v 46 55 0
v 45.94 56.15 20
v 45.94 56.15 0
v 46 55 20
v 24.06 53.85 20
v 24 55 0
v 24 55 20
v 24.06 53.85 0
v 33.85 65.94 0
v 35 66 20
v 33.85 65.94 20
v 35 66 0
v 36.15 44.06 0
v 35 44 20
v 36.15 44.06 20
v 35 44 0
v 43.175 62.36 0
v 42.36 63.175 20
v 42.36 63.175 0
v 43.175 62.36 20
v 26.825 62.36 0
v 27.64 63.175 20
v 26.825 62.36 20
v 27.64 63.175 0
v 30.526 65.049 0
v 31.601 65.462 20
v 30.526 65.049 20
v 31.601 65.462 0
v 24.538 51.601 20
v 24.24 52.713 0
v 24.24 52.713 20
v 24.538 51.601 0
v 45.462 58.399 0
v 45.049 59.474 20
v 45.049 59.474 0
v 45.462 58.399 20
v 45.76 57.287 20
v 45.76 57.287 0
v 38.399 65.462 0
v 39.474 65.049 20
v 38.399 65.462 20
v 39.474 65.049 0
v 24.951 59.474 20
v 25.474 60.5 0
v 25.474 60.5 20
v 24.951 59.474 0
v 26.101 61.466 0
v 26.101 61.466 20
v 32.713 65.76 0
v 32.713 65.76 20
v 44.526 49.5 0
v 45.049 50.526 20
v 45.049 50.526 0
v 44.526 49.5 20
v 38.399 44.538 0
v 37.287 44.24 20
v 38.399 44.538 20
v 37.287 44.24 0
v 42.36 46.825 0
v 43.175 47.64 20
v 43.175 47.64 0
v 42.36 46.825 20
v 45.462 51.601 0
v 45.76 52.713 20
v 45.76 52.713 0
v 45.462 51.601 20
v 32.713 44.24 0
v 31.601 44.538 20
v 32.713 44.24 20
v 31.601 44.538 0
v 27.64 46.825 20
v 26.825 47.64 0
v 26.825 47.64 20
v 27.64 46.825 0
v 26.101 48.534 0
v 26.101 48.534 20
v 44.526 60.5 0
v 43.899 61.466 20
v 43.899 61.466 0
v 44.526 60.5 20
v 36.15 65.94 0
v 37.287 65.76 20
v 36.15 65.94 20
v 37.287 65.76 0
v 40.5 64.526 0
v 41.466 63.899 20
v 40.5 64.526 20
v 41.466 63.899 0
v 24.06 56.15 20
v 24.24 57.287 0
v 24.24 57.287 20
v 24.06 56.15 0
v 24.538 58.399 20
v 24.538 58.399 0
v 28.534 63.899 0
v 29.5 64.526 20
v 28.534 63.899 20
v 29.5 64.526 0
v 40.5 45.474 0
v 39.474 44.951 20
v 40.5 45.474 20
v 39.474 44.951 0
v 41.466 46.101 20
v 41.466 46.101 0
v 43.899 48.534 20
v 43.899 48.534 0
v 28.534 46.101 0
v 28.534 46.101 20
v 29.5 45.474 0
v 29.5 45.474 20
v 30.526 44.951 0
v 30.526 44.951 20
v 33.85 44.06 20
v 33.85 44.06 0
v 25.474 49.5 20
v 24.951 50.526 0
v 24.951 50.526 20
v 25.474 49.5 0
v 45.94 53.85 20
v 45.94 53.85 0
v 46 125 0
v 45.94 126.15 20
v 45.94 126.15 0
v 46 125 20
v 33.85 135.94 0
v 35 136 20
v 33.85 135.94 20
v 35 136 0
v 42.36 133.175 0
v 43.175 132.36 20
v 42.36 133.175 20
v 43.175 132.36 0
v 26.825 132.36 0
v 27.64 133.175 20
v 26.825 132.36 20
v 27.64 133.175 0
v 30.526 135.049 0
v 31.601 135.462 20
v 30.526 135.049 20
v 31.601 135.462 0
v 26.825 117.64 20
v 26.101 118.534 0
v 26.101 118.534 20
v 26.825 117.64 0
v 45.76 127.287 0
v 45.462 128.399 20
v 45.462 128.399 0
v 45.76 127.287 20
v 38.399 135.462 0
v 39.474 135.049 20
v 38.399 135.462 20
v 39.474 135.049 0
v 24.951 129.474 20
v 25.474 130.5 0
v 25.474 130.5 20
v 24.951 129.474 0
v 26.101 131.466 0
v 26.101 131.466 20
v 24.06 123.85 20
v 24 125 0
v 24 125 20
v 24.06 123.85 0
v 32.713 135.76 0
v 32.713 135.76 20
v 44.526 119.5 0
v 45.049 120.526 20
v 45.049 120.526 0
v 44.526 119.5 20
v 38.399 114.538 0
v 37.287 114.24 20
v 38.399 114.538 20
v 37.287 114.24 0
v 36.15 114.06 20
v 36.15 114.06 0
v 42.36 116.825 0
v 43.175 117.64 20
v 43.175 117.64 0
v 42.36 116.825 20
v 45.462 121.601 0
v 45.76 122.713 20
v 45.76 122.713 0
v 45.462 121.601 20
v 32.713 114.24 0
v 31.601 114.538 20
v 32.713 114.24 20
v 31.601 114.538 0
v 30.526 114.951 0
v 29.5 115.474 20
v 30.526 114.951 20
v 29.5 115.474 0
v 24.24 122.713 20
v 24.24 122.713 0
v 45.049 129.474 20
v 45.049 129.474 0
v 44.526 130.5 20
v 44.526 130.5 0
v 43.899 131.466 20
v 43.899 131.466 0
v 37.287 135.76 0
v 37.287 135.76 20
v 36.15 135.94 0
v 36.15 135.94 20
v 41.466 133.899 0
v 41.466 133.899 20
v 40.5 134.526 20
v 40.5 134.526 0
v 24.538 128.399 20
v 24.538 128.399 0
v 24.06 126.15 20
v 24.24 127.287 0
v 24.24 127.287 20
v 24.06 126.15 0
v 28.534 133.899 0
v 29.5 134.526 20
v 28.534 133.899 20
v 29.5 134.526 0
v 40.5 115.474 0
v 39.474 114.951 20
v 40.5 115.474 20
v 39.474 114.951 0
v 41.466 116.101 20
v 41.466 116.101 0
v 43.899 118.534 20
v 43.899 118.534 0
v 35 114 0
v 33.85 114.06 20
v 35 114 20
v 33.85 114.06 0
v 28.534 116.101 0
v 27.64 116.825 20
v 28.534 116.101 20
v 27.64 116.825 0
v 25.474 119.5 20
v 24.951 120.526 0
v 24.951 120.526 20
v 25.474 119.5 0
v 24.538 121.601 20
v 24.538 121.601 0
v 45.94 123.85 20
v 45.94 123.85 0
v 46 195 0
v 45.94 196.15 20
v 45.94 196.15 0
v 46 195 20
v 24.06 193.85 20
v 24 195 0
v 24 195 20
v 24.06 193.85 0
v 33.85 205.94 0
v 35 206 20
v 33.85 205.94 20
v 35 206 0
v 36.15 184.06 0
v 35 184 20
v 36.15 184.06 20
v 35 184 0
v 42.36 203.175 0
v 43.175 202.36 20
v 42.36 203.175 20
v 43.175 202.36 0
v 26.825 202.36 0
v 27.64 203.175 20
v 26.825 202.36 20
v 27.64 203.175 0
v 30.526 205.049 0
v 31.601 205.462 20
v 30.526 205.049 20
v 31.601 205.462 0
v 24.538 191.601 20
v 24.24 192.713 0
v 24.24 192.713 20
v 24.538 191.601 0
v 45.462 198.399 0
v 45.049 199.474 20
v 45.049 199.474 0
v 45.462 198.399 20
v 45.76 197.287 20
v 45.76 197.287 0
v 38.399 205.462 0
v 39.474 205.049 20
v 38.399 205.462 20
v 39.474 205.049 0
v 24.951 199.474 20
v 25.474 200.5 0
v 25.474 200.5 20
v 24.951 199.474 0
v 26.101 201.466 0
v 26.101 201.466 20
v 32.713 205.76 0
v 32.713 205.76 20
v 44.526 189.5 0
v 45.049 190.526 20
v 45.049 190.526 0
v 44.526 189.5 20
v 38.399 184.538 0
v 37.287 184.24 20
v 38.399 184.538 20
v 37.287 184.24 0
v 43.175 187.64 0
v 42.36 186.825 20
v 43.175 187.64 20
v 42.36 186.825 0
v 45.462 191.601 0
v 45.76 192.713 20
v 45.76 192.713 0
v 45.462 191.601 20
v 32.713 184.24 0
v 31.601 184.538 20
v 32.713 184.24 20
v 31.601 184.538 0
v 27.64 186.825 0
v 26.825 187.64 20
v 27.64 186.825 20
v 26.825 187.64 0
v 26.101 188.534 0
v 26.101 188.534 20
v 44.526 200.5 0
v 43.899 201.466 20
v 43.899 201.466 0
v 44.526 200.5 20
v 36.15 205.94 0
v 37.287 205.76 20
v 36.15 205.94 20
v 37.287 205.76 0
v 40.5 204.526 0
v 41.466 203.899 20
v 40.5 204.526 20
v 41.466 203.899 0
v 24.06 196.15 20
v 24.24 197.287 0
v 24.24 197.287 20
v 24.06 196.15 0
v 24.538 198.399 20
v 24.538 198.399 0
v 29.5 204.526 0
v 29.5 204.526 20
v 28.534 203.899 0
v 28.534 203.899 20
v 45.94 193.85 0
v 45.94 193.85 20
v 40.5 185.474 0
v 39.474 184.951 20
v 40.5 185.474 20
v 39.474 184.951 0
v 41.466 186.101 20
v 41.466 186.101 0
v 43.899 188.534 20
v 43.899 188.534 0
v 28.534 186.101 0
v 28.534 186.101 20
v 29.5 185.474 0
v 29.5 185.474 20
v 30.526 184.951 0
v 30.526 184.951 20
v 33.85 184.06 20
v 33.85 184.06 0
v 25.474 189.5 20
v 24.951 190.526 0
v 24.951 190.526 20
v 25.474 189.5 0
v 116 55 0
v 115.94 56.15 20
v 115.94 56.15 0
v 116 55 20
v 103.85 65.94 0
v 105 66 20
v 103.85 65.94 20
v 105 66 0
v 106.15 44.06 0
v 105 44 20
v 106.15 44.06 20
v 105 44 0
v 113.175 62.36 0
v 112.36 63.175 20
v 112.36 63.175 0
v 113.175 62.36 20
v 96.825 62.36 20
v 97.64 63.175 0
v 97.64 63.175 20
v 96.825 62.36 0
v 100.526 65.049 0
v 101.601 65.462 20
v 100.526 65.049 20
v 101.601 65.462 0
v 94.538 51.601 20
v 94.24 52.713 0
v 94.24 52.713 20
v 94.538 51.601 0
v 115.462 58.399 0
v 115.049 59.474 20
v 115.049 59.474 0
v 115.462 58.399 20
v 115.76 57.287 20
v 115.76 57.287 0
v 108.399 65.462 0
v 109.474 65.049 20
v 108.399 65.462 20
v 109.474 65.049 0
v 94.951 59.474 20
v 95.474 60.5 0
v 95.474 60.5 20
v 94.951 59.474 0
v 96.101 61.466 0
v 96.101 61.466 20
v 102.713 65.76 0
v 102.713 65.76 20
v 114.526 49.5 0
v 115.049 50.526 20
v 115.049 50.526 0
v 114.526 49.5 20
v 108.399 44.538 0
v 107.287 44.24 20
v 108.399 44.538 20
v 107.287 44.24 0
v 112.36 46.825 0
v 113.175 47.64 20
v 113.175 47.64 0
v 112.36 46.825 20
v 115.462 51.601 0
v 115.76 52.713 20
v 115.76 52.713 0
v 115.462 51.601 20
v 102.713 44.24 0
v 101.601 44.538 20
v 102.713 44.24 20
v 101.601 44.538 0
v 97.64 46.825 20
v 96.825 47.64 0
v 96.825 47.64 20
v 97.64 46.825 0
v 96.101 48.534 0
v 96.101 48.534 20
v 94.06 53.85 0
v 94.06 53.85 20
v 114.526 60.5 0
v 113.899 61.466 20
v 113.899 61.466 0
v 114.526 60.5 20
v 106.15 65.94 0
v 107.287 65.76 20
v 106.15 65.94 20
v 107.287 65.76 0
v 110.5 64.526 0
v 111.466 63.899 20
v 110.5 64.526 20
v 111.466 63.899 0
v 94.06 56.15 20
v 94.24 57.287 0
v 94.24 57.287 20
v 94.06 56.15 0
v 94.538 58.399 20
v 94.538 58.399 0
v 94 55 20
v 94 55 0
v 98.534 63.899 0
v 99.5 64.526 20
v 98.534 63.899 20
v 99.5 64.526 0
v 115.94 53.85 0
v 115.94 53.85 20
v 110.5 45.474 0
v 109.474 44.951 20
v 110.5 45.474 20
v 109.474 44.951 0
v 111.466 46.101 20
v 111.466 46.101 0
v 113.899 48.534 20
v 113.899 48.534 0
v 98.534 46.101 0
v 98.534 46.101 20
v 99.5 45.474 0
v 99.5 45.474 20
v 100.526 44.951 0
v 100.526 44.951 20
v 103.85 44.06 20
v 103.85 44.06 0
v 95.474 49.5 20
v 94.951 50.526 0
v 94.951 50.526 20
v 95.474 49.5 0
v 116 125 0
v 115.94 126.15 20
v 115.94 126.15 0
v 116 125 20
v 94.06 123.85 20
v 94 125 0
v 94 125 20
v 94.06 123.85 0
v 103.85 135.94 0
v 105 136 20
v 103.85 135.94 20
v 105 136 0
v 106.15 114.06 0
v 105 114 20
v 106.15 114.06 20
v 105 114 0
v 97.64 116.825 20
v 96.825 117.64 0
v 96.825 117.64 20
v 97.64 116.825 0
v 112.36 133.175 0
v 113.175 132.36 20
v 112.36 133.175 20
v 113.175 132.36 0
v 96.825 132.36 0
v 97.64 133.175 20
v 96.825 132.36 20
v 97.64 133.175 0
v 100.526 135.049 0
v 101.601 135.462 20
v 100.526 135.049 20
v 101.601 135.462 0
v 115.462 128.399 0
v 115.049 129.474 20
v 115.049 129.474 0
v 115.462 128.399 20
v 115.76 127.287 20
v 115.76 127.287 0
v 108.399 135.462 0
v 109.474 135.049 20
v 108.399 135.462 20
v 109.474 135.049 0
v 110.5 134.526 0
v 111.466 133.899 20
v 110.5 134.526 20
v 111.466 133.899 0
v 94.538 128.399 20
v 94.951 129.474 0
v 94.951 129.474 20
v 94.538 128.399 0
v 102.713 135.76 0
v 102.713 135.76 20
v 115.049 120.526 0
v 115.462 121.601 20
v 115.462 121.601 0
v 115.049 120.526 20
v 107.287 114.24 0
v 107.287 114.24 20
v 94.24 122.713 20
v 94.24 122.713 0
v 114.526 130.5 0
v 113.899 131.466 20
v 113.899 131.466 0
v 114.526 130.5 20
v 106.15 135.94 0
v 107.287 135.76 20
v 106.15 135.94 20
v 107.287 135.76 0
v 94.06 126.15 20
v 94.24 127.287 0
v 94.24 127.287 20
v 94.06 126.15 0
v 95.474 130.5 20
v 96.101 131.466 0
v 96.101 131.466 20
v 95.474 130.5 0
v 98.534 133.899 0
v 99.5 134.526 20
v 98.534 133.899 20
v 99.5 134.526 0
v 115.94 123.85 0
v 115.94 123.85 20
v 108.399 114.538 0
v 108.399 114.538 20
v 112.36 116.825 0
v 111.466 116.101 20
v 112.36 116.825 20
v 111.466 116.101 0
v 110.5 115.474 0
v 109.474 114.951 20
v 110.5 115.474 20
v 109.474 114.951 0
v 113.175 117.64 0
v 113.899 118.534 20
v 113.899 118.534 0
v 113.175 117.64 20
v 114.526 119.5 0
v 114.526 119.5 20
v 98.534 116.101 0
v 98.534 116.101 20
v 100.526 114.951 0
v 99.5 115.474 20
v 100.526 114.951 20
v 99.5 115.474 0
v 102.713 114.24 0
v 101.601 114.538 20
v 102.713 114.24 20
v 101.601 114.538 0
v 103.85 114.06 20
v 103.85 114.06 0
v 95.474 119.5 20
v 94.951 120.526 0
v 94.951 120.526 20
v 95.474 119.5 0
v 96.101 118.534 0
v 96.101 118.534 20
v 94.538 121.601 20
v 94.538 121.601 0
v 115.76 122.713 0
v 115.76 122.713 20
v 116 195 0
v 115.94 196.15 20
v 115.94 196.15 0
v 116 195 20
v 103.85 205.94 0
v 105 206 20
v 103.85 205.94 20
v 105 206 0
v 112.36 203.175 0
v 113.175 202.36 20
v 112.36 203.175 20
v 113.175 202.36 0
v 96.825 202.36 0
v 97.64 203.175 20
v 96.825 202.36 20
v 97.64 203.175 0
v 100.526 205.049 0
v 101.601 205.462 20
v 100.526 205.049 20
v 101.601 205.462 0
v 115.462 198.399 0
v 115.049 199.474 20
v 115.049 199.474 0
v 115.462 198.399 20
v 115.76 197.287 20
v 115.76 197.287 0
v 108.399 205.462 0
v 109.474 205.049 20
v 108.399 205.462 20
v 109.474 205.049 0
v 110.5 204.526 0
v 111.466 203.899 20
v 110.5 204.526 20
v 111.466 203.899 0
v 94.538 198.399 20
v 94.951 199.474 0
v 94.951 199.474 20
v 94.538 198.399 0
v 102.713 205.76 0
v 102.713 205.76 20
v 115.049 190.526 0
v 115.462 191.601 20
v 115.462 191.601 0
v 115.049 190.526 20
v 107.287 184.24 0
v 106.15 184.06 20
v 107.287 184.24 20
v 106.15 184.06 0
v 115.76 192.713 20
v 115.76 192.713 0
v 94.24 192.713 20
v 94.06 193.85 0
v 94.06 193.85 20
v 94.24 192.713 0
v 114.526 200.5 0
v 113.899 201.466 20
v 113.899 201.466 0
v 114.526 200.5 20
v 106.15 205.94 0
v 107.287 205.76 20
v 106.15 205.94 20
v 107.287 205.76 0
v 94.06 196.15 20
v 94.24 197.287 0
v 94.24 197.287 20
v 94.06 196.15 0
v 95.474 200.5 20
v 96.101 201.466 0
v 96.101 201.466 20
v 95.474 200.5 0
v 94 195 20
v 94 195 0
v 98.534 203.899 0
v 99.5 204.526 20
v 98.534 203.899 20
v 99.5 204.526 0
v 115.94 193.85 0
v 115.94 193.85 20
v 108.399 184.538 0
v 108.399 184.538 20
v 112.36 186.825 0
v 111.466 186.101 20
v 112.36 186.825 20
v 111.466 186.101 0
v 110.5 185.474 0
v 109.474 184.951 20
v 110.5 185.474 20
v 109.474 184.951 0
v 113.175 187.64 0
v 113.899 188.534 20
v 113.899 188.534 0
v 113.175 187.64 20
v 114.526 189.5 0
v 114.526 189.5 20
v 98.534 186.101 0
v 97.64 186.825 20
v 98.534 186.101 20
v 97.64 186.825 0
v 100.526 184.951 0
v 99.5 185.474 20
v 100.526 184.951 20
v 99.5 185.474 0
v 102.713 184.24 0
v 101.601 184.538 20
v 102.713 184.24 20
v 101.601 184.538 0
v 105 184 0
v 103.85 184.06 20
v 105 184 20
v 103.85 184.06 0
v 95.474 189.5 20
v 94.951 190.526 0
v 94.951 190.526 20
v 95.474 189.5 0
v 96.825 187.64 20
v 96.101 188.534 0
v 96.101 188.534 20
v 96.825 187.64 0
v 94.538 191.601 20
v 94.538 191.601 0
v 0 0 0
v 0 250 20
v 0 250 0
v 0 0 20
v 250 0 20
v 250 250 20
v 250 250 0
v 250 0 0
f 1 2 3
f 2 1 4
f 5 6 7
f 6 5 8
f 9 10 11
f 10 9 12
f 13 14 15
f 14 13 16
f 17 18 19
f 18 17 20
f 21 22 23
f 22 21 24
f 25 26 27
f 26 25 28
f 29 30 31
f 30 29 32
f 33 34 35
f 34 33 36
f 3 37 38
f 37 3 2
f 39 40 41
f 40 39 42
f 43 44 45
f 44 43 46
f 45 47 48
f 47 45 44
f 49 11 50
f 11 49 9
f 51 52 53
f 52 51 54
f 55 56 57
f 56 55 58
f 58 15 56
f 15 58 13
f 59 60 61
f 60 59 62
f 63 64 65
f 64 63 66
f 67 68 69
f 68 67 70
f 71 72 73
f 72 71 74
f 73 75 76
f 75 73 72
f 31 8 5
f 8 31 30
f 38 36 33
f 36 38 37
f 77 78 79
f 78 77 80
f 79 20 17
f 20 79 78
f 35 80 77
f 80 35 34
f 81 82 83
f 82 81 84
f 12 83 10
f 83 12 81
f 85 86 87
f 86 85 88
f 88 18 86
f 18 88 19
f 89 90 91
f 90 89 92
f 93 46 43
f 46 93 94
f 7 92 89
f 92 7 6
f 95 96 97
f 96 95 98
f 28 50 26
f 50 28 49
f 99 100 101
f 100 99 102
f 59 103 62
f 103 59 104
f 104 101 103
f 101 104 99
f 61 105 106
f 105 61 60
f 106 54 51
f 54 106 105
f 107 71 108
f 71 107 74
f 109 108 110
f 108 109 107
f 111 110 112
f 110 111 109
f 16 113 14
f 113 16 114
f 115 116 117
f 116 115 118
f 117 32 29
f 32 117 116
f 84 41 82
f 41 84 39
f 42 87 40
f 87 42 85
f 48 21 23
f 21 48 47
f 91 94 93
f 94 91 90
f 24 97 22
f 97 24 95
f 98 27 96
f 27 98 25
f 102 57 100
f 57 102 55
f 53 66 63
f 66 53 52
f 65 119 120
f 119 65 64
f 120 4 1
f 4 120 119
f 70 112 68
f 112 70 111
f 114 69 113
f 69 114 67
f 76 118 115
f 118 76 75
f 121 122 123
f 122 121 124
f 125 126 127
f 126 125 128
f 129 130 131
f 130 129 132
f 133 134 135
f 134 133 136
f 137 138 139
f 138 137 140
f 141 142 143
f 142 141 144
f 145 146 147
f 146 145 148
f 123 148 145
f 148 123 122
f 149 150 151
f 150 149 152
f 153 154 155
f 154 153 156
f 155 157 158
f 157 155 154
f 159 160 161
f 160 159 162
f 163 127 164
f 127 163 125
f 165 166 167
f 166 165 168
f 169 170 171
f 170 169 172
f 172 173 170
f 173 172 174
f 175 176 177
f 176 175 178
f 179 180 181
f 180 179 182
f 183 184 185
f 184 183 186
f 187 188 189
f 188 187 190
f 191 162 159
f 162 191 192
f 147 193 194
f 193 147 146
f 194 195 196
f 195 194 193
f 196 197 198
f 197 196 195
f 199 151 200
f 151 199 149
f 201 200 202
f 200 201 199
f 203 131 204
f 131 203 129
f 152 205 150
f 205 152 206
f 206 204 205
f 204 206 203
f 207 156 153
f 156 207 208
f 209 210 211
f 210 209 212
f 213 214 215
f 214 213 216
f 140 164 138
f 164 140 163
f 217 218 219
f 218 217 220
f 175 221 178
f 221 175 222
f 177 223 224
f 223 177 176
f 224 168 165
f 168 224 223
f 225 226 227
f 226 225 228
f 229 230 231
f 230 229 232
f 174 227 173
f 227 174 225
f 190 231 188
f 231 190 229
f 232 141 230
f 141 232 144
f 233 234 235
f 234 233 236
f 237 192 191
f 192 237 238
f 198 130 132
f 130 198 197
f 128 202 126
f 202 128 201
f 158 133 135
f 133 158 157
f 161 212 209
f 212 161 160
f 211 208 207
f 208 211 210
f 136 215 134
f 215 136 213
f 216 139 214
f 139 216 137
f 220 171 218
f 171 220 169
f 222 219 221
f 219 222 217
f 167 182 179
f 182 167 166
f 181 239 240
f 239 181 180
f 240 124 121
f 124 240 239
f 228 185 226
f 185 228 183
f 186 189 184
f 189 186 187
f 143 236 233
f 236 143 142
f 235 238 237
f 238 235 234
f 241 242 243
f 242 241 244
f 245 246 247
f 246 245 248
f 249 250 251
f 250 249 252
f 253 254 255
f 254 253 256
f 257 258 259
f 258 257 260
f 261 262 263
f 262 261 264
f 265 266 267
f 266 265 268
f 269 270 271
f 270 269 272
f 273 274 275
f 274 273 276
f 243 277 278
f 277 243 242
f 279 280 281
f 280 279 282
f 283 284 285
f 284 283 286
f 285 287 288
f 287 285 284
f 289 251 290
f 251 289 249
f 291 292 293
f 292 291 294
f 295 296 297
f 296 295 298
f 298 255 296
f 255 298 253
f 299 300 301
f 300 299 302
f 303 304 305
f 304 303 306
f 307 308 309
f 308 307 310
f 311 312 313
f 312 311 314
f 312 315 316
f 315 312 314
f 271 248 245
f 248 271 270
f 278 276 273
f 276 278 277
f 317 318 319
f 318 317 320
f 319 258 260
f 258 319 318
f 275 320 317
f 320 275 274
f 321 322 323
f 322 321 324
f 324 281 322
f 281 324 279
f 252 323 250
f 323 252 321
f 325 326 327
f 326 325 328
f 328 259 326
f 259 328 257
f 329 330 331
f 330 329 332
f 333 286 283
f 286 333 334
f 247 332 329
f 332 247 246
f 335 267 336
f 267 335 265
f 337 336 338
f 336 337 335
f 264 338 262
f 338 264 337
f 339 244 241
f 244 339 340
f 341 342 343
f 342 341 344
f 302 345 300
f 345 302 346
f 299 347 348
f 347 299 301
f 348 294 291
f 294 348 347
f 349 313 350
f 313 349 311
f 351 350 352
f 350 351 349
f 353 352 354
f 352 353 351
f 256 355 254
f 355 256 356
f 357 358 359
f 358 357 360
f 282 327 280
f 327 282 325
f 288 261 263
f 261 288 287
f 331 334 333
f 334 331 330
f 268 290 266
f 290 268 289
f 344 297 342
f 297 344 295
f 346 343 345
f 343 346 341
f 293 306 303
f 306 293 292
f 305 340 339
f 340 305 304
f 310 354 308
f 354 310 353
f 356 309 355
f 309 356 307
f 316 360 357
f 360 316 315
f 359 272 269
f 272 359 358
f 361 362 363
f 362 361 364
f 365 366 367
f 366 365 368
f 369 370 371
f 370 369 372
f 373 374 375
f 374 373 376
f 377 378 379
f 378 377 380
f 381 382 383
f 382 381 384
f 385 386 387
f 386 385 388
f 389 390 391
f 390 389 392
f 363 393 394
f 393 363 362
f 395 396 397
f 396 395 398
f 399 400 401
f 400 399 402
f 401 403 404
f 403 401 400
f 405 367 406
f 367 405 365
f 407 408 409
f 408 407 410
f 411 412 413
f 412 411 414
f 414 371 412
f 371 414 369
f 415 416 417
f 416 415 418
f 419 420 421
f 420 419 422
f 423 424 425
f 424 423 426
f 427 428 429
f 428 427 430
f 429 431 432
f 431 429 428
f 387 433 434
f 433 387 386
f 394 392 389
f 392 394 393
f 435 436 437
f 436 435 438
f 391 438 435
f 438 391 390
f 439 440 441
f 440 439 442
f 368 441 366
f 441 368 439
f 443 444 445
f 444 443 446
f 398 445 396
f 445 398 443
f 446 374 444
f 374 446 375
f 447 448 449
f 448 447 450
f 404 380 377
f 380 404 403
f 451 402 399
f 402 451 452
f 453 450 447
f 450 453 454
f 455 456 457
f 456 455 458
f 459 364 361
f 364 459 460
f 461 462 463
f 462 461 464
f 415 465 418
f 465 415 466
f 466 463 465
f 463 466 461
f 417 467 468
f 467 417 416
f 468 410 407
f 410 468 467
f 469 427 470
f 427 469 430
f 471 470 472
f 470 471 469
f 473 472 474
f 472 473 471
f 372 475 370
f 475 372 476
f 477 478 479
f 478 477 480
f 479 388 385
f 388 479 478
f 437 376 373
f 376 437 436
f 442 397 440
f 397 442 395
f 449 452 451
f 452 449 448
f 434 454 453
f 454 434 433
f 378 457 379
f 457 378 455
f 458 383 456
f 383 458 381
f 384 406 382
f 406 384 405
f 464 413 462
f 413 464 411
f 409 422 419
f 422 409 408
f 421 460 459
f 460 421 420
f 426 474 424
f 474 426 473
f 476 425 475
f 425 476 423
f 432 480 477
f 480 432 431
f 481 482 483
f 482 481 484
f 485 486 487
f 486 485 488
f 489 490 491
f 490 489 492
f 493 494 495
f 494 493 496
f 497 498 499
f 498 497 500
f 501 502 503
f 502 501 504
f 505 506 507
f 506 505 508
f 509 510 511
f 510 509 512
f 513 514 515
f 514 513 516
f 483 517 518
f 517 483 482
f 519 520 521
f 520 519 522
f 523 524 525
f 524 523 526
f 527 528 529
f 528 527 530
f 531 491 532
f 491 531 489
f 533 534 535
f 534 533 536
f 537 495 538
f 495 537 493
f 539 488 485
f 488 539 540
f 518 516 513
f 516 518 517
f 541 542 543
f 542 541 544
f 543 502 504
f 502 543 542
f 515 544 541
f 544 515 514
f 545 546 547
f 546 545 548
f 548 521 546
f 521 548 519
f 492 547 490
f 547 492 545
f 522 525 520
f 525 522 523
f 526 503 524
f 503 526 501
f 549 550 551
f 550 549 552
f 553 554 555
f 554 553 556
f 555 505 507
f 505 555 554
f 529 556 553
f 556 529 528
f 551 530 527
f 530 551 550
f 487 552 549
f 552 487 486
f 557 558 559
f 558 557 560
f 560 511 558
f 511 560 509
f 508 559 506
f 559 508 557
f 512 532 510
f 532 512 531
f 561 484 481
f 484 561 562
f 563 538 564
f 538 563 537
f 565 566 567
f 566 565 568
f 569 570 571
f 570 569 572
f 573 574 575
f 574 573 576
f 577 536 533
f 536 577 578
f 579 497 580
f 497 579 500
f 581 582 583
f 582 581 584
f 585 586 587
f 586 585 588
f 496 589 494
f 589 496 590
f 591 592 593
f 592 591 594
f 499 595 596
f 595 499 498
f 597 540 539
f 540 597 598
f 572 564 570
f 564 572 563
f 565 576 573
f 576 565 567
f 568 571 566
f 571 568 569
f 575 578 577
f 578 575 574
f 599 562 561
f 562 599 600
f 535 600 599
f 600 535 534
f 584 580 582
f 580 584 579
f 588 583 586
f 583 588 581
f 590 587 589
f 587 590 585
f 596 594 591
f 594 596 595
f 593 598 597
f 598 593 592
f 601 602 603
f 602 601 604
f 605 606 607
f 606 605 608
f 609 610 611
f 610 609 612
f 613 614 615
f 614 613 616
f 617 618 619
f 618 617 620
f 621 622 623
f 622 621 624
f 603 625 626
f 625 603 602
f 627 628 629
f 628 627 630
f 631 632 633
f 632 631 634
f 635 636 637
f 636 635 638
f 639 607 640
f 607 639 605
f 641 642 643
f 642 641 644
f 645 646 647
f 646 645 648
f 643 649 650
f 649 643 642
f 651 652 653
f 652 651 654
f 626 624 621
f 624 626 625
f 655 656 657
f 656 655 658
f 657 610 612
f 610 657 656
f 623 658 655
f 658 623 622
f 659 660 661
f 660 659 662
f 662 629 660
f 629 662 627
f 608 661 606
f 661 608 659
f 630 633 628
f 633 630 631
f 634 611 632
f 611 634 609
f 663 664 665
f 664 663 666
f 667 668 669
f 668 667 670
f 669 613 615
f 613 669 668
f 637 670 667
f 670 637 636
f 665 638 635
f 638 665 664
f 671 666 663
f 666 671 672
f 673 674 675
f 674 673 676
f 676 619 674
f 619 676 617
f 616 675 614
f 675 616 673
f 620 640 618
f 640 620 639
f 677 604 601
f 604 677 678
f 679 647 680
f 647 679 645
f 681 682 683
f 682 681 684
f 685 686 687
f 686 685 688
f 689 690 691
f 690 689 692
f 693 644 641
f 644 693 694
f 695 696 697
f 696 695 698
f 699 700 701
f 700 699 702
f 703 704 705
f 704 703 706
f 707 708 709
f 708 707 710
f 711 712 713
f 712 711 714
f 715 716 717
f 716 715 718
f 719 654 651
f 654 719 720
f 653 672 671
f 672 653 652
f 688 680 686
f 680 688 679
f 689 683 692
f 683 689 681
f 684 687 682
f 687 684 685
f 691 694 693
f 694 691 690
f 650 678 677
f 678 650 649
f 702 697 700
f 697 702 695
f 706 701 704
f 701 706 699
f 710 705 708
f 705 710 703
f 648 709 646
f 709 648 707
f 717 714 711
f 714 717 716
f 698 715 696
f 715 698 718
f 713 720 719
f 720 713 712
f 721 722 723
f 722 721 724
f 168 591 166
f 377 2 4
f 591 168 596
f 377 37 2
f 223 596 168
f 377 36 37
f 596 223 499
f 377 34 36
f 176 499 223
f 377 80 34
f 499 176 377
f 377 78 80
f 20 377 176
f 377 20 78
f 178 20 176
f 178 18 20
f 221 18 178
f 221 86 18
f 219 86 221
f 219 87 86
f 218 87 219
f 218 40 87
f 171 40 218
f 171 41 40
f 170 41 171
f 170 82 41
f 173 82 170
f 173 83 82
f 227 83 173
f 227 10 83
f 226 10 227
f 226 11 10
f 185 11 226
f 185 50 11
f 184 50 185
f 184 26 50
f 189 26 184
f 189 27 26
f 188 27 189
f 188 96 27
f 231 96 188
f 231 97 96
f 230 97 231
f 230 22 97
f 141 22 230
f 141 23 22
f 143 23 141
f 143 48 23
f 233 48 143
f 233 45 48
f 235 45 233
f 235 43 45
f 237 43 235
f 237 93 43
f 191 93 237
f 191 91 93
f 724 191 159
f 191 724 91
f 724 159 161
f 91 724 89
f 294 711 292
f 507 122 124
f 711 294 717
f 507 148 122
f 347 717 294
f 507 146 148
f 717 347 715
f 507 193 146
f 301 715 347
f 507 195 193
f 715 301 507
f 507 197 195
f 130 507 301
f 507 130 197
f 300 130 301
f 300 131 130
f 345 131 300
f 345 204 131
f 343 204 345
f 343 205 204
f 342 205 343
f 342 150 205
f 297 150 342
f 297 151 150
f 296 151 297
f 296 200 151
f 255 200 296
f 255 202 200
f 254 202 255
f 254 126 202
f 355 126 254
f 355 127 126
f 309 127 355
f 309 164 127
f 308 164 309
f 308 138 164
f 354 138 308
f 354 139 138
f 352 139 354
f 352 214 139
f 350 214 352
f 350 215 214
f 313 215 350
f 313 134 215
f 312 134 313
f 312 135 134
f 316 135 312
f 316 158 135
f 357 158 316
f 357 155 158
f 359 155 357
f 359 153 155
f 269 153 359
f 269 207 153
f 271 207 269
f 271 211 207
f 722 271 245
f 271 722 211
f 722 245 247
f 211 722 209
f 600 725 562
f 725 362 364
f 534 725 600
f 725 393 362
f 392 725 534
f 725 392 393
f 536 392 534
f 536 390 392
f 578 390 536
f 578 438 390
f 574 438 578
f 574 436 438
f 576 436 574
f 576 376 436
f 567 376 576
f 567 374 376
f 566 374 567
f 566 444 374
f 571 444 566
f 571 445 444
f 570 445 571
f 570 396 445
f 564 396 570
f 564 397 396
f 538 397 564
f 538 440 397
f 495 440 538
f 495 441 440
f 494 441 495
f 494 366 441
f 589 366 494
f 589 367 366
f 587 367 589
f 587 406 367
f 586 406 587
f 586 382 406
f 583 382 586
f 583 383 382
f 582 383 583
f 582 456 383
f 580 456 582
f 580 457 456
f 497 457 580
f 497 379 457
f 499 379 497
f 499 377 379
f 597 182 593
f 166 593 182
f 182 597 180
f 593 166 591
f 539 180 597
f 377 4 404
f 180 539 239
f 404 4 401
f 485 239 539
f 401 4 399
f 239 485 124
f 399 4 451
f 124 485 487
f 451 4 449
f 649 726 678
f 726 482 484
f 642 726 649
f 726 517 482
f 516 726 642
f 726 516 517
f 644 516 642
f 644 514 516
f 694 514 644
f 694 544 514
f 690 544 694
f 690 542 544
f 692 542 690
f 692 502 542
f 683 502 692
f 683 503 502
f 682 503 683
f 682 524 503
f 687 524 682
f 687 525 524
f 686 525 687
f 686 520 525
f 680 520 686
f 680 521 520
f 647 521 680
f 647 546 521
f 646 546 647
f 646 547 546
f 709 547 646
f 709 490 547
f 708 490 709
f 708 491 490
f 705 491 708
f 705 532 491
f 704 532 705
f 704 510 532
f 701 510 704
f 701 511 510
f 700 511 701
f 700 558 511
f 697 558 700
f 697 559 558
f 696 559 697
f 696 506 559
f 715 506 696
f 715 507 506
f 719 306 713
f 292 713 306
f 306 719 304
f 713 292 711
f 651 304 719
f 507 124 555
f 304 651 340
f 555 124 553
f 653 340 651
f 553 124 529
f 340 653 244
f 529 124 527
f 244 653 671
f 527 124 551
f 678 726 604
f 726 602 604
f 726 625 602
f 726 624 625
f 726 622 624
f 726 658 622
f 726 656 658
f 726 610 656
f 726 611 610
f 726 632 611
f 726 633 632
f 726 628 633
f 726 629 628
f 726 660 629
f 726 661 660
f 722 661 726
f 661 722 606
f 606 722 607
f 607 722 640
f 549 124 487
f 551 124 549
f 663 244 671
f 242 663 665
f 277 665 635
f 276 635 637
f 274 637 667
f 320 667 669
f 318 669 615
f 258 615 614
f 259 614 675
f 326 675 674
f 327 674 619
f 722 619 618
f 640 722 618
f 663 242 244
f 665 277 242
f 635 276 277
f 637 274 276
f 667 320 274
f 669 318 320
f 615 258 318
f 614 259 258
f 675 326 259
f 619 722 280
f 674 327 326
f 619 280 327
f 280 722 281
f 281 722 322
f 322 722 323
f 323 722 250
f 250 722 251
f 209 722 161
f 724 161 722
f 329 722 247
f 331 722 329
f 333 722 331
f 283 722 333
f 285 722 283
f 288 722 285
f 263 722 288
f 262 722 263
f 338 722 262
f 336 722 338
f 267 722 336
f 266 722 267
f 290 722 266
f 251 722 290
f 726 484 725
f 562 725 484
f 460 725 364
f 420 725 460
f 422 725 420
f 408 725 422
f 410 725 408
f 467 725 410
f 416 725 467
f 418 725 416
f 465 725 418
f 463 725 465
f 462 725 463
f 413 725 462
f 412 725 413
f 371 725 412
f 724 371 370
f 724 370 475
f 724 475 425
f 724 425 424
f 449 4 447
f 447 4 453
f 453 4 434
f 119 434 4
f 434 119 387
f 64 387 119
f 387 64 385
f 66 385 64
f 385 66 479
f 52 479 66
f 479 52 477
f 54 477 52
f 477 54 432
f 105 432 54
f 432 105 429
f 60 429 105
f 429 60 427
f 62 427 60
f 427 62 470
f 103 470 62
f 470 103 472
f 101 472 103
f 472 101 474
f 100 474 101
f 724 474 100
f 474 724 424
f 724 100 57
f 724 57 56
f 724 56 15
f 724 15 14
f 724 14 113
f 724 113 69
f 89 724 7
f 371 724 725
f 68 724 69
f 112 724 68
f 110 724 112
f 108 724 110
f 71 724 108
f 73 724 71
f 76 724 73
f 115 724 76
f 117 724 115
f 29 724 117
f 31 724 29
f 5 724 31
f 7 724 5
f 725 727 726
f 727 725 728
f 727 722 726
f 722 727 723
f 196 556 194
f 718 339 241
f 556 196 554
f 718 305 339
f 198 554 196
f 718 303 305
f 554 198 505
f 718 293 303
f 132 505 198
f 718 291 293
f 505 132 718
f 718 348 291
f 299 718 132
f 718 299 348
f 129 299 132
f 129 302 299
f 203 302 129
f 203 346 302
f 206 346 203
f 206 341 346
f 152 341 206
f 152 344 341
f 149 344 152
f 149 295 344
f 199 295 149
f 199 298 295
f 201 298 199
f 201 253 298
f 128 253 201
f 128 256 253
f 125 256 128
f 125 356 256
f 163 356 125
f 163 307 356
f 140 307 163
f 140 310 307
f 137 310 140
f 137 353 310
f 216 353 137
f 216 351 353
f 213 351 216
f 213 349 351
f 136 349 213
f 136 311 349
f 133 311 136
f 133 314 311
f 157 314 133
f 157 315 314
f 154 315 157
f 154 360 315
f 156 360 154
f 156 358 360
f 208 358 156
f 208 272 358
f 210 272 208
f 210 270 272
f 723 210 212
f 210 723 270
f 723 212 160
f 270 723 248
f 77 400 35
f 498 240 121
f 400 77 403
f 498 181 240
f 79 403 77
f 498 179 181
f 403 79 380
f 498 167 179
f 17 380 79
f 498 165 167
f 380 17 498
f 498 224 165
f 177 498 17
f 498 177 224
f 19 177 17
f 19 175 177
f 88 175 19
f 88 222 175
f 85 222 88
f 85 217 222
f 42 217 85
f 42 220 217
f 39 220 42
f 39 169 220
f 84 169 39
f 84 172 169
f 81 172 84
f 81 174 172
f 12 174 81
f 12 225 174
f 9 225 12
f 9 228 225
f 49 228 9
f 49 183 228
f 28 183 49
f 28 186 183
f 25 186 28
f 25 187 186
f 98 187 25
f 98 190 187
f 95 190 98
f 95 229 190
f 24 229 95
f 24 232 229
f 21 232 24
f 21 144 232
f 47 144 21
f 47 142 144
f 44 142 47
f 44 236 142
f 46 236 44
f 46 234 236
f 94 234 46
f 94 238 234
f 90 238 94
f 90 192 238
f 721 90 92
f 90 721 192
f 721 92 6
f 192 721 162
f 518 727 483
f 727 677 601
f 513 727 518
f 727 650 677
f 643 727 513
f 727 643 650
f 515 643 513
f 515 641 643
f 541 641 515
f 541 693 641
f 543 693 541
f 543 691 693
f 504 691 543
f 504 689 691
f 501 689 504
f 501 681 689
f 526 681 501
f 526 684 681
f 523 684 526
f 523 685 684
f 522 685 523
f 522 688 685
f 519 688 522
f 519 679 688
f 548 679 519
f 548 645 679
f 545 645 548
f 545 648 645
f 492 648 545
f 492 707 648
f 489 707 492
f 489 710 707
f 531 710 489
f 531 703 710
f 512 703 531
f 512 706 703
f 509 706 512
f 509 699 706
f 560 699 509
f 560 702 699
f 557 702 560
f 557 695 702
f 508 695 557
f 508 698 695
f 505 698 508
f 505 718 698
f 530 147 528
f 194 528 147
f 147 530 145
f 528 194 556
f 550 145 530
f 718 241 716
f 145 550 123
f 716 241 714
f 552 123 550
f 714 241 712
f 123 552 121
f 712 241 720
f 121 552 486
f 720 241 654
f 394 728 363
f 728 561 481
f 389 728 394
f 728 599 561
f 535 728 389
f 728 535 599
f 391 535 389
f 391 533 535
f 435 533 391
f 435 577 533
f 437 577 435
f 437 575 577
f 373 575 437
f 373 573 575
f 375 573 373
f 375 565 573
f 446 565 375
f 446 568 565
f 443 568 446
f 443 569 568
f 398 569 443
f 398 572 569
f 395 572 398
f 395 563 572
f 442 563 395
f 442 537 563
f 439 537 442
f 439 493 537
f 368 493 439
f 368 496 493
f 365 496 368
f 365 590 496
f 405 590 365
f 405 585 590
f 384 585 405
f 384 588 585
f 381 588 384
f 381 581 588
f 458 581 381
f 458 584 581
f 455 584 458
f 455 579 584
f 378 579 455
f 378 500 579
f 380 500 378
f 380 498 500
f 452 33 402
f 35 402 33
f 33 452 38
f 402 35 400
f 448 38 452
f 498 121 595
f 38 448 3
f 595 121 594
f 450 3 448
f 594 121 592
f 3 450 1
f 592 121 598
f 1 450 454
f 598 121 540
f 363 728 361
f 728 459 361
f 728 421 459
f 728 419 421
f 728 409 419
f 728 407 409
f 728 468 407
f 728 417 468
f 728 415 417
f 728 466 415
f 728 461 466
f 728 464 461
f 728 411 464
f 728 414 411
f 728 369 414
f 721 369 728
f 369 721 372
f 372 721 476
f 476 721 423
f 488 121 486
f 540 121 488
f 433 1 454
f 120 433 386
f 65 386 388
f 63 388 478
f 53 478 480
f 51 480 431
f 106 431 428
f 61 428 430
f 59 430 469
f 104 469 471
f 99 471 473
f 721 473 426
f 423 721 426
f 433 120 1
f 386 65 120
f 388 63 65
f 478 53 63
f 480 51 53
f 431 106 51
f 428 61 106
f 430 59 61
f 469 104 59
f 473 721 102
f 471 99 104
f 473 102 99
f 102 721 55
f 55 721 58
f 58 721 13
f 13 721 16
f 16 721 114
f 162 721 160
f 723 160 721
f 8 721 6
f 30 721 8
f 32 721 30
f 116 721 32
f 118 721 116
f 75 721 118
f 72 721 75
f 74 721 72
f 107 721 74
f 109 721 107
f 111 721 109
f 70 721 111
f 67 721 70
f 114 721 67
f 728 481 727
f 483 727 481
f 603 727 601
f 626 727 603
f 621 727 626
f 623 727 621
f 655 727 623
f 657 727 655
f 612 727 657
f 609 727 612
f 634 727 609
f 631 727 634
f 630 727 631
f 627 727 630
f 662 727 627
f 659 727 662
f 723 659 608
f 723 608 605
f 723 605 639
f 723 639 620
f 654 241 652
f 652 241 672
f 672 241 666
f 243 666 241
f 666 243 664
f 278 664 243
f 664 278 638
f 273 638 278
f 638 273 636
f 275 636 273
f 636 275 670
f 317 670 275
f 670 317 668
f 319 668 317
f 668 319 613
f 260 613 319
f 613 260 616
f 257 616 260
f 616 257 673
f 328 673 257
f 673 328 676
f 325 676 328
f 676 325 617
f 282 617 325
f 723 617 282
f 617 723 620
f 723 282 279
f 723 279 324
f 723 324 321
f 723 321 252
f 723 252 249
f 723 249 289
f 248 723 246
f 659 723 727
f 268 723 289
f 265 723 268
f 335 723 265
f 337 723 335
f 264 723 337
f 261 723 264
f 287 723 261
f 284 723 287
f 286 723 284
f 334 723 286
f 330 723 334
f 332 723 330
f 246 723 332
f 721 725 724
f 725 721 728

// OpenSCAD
// file: params.scad
// Global Parameters for Dimon brace

// The HSS is a HSS 127x127x13 G40.20

HSS_d = 127.0;
HSS_b = 127.0;
HSS_t = 12.7;
HSS_l = 250.0;    //length of HSS for model

// The tongue plate (welded into slot in HSS)

TP_t = 20.0;
TP_w = 250.0;
TP_l = 250.0;   // total length
TP_lw = 100.0;  // length of welded portion

// cover plate (welded on HSS)

CP_t = 10;
CP_w = 60;
CP_l = 200;
CP_setback = 10;
CP_lw = CP_l;

// welds

TP_D = 8;
CP_D = 6;

// Bolts

BOLT_d = 20;    // diameter
BOLT_hd = BOLT_d + 2;    // hole diameter
BOLT_s = 70;             // longitudinal spacing (pitch)
BOLT_g = 70;             // transverse spacing (gauge)
BOLT_NG = 3;             // number of gauge lines
BOLT_NT = 2;             // number of transverse lines
BOLT_e = 35;		 // end distance


// misc.

$fn = 60;       // number of sides for poly approx to circles
// main file
include <params.scad>;

render() {
    difference() {
        cube([TP_l,TP_w,TP_t]);
        for (i = [0:BOLT_NT-1]) {        // the holes
            x = BOLT_e + i*BOLT_s;
            for (j = [0:BOLT_NG-1]) {
                y = TP_w/2 - (BOLT_NG-1)*BOLT_g/2 + j*BOLT_g;
                translate([x,y,-1]) cylinder(d=BOLT_hd,h=TP_t+2);
            }
        }
    }
}
